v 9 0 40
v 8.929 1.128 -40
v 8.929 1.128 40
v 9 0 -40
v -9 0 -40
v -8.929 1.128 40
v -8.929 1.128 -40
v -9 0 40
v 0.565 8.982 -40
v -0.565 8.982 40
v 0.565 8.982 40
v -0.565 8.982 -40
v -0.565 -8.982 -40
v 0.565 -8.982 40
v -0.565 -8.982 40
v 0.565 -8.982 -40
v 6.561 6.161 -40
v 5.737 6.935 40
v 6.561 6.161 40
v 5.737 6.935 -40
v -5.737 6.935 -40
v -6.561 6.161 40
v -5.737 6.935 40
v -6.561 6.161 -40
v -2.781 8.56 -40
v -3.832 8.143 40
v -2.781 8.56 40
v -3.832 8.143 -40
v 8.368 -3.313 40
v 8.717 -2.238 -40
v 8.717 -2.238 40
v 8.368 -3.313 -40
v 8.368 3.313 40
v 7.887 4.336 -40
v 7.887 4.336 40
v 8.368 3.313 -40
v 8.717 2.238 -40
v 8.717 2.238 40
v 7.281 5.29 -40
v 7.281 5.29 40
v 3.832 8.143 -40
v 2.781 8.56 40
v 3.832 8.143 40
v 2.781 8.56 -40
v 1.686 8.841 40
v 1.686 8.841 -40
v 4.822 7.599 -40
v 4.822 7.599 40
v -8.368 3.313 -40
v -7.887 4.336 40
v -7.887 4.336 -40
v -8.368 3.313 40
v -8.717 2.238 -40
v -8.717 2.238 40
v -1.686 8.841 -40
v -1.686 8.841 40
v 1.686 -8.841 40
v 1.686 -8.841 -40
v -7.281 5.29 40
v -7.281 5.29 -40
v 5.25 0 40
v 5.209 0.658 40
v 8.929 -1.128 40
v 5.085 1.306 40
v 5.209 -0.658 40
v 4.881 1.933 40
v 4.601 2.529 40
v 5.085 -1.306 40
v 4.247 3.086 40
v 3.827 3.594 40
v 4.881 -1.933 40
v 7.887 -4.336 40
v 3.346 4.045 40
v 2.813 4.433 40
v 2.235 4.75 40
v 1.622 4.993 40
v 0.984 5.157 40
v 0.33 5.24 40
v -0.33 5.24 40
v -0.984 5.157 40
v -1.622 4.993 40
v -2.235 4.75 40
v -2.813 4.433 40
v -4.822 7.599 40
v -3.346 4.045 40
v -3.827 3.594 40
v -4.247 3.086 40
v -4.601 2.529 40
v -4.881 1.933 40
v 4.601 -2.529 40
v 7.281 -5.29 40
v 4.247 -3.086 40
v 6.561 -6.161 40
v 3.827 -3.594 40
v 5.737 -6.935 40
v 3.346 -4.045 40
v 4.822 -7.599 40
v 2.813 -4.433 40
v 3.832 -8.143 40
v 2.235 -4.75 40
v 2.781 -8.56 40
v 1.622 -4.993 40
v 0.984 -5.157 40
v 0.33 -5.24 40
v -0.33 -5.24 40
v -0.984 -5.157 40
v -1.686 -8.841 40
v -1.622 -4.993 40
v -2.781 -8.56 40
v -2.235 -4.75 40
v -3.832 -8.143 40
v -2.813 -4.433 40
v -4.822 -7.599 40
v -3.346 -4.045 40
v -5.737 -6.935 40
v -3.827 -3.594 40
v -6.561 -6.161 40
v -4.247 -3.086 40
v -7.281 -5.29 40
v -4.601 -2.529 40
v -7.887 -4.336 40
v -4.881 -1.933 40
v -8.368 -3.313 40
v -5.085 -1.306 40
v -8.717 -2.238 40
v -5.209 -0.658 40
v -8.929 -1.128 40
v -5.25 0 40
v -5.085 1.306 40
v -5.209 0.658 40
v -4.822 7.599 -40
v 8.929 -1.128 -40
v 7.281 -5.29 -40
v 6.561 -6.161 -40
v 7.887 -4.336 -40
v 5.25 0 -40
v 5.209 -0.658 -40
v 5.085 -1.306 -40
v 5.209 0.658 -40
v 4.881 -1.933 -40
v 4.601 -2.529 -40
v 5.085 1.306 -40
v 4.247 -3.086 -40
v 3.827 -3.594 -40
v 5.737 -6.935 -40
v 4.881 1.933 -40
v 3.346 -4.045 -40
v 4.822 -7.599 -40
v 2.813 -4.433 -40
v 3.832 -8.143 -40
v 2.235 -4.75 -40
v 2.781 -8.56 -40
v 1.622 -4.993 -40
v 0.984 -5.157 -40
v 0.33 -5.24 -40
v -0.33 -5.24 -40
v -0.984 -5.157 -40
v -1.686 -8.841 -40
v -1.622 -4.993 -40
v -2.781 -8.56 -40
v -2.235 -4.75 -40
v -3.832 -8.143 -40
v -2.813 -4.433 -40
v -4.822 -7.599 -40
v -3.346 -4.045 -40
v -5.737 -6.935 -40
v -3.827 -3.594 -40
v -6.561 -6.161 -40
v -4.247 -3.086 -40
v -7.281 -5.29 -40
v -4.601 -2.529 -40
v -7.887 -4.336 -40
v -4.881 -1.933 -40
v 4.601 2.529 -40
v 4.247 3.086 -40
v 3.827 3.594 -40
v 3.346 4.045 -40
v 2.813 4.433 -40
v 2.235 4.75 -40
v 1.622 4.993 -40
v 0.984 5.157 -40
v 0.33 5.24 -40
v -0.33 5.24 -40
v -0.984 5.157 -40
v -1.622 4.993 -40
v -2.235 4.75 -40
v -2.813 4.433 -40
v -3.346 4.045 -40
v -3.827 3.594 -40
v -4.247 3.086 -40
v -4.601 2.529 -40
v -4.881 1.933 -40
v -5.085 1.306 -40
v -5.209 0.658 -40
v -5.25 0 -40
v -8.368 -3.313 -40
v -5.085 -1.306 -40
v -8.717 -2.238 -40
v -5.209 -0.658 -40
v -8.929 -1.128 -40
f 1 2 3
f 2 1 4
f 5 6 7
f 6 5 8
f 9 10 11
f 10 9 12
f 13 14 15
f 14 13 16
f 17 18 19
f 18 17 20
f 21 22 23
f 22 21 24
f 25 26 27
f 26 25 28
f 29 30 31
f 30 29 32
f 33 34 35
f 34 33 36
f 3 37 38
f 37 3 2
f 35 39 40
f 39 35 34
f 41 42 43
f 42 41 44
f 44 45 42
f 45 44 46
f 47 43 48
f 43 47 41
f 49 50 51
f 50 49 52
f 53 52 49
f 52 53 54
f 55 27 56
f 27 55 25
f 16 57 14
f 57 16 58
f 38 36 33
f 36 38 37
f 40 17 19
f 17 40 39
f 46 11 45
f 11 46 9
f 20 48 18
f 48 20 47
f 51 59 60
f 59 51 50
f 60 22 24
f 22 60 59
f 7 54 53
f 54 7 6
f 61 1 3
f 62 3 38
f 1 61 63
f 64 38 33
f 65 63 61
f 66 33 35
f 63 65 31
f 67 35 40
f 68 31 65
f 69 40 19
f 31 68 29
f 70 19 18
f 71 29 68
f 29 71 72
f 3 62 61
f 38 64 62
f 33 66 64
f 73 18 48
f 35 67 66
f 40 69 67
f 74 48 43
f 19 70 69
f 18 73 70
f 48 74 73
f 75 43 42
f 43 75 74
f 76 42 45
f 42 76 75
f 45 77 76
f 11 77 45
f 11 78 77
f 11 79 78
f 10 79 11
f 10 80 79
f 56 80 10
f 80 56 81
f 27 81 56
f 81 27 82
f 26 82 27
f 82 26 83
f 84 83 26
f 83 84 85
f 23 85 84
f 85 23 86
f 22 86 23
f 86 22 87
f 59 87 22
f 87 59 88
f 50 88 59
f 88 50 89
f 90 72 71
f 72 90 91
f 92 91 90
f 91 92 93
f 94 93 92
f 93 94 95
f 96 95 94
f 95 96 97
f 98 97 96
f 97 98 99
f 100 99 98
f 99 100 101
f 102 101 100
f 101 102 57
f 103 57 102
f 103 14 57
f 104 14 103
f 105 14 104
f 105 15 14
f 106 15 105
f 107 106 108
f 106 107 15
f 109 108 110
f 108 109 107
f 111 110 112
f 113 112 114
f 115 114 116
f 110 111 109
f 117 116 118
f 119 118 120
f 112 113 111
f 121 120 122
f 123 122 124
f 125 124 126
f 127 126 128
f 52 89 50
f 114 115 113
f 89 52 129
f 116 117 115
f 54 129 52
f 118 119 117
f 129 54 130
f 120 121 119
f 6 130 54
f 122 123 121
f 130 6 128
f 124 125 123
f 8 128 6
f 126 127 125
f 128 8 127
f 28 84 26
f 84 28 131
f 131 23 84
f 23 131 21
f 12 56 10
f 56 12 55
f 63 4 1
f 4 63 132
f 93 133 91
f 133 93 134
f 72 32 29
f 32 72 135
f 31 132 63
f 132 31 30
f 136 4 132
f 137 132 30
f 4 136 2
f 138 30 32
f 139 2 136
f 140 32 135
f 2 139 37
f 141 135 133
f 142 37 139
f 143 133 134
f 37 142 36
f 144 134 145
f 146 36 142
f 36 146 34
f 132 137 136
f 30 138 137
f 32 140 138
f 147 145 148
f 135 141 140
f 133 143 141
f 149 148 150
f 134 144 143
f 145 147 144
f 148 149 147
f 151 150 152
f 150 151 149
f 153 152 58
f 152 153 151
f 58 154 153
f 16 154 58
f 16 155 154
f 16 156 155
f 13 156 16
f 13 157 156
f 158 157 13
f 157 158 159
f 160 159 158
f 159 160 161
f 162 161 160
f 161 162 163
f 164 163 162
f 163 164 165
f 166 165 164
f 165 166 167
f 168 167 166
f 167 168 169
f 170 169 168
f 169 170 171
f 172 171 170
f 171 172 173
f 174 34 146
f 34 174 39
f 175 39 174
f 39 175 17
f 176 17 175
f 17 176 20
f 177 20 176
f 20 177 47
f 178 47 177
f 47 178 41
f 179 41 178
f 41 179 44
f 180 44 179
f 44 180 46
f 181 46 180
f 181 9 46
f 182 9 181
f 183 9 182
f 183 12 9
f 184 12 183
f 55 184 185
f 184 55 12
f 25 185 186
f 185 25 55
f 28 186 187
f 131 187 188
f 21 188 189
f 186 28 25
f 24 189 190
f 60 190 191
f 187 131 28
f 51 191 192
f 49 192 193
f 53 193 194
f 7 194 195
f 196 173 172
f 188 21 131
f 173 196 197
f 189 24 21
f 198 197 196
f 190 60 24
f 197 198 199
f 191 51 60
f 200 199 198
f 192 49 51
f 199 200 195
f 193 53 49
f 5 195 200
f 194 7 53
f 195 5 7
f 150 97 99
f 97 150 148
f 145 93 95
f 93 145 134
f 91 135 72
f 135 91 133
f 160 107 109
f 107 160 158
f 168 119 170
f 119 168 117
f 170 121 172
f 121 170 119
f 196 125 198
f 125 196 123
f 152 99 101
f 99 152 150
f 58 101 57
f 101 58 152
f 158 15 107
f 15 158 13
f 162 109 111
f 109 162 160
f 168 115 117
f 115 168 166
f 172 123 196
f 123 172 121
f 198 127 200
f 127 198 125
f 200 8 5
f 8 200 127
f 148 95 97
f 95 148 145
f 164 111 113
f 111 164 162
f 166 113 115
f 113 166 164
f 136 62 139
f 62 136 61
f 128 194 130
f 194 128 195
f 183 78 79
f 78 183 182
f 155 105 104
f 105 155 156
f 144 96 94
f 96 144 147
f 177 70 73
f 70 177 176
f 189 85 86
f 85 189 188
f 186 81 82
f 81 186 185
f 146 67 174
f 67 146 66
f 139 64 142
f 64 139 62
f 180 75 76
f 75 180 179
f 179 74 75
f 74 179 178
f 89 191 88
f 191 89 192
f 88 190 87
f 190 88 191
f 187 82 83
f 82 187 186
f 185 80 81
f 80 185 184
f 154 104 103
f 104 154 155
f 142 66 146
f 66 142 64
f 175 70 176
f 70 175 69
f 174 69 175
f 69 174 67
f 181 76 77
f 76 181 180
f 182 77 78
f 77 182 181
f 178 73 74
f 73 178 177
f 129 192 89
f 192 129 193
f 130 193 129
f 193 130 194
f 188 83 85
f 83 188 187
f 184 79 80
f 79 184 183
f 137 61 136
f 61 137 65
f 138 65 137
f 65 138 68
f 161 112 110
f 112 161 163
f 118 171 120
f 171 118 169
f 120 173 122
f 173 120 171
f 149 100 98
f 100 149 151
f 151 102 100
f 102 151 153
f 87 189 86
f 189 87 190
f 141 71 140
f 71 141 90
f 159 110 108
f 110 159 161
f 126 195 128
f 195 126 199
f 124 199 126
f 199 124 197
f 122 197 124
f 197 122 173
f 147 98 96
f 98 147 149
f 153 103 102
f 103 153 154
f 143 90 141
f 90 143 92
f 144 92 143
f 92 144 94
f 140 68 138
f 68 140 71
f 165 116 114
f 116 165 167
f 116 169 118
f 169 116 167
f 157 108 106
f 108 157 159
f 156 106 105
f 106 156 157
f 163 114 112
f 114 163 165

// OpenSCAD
$fn = 50;


difference() {
	union() {
		translate(v = [0, 0, -40.0000000000]) {
			cylinder(h = 80, r = 9.0000000000);
		}
	}
	union() {
		translate(v = [0, 0, -100.0000000000]) {
			cylinder(h = 200, r = 5.2500000000);
		}
	}
}
